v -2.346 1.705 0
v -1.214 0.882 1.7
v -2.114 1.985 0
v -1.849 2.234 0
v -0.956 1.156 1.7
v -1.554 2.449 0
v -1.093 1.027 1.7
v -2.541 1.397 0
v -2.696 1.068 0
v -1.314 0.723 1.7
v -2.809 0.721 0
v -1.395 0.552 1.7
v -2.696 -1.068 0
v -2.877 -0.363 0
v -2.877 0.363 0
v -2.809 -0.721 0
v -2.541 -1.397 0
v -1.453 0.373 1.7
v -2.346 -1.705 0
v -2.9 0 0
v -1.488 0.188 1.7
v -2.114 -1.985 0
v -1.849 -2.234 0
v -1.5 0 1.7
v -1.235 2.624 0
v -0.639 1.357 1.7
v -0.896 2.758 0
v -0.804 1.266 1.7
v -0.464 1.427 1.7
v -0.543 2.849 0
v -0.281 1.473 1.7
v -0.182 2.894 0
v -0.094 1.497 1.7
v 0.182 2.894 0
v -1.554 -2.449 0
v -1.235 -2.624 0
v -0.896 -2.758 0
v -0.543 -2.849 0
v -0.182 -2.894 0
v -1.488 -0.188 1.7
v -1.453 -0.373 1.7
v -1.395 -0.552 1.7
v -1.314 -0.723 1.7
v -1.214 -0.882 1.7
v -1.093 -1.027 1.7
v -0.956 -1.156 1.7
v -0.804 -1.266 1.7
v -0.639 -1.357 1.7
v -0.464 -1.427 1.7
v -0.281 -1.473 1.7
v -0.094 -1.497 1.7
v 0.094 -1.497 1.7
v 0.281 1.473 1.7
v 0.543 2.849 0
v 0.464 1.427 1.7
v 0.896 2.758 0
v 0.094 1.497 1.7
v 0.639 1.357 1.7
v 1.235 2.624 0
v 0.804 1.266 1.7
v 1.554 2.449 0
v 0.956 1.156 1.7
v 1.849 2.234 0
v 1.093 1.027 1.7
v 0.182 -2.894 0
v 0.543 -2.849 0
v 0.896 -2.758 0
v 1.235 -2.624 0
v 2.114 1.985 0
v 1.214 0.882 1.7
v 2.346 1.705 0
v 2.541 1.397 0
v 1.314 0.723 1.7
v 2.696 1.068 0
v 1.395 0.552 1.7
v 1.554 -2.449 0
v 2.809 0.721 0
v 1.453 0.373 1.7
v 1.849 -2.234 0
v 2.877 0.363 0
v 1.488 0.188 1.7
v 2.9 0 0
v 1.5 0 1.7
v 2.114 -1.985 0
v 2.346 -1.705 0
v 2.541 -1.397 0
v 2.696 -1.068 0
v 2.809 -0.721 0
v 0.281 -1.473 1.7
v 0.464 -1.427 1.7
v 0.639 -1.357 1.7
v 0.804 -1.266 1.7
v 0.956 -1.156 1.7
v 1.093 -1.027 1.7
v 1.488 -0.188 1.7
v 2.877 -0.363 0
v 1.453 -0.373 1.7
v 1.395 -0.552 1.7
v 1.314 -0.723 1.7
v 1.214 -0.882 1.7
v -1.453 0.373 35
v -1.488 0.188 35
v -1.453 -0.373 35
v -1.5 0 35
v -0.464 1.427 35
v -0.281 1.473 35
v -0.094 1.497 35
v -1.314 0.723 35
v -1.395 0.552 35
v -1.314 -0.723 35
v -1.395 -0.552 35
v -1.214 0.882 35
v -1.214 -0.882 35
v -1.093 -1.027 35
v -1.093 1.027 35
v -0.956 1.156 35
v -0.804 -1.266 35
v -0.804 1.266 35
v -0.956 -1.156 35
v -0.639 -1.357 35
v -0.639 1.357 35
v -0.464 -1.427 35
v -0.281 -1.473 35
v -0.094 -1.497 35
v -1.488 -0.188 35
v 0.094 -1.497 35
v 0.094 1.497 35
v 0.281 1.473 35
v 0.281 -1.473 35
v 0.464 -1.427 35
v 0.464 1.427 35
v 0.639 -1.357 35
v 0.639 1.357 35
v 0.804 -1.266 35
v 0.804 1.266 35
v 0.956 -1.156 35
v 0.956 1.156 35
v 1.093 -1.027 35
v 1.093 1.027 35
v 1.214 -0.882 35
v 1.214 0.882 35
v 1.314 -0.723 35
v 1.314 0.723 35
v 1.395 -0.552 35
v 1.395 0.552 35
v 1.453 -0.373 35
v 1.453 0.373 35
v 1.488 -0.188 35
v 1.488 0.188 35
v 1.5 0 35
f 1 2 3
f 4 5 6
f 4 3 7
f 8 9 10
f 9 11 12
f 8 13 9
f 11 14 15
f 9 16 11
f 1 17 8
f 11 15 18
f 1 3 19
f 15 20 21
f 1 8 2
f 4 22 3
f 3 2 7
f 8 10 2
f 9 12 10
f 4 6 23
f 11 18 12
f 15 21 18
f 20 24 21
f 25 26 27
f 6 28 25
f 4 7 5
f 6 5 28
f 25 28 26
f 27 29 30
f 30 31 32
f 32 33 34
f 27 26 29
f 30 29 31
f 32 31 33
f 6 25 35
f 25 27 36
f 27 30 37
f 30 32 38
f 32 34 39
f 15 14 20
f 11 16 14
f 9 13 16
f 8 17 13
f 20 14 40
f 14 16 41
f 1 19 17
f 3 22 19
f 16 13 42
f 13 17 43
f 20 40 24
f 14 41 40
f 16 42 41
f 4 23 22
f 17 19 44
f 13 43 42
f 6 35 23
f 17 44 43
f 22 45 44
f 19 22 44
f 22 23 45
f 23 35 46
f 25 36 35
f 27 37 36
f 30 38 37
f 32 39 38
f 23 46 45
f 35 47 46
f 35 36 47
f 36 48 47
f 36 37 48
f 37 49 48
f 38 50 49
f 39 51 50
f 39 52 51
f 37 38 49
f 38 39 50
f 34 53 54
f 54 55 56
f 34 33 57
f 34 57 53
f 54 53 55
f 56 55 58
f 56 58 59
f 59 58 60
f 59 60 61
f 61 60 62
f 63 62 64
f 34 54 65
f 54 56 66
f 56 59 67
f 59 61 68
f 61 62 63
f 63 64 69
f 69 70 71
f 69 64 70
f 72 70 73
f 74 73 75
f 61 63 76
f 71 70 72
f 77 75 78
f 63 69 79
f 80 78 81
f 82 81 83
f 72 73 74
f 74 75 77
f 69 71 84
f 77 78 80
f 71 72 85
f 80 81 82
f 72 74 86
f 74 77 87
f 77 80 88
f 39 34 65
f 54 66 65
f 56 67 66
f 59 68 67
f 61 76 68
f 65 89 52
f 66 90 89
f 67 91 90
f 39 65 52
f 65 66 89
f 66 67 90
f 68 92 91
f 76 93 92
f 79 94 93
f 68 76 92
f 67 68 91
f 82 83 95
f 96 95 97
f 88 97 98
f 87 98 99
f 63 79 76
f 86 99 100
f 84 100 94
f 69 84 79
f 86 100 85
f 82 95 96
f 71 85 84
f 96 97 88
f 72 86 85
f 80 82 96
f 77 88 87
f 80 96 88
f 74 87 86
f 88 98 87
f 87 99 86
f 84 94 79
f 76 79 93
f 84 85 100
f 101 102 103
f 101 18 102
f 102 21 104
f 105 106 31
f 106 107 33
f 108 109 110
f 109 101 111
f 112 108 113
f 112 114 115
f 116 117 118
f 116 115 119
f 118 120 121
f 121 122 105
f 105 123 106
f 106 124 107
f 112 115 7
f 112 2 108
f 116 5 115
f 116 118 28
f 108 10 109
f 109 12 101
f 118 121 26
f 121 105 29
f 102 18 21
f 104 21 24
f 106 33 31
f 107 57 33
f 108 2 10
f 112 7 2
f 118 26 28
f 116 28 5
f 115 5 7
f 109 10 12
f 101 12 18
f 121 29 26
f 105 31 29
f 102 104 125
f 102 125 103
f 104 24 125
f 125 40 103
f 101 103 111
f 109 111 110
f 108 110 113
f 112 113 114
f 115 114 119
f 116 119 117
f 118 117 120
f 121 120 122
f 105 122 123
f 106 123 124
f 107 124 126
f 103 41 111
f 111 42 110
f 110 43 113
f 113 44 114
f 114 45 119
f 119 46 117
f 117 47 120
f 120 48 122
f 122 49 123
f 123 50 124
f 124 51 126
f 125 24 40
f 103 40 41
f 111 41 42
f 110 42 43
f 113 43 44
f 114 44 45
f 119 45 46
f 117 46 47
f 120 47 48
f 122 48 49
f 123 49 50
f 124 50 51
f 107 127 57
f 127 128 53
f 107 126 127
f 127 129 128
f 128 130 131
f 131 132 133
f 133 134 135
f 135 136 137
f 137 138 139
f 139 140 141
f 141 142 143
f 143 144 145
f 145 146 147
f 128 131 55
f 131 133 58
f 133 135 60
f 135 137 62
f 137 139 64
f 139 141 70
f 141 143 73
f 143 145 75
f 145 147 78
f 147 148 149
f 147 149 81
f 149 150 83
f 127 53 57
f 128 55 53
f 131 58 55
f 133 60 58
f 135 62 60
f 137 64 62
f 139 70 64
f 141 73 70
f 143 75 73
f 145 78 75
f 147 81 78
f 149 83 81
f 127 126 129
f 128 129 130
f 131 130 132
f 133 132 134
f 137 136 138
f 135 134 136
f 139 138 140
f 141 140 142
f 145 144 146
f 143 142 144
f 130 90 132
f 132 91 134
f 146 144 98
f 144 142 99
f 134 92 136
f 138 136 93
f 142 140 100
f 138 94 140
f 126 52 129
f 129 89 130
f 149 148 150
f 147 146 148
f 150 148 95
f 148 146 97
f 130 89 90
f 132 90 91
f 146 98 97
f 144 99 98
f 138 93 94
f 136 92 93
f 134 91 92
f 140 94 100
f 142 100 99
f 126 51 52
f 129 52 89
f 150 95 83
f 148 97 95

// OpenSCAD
$fn = 50;

difference() {
	union() {
		translate(v = [0, 0, 0]) {
			rotate(a = [180, 0, 0]) {
				difference() {
					union() {
						translate(v = [0, 0, -1.7]) {
							cylinder(h = 1.7, r1 = 1.5, r2 = 2.9);
						}
						translate(v = [0, 0, -35.0]) {
							cylinder(h = 35.0, r = 1.5);
						}
					}
					union();
				}
			}
		}
	}
	union();
}
